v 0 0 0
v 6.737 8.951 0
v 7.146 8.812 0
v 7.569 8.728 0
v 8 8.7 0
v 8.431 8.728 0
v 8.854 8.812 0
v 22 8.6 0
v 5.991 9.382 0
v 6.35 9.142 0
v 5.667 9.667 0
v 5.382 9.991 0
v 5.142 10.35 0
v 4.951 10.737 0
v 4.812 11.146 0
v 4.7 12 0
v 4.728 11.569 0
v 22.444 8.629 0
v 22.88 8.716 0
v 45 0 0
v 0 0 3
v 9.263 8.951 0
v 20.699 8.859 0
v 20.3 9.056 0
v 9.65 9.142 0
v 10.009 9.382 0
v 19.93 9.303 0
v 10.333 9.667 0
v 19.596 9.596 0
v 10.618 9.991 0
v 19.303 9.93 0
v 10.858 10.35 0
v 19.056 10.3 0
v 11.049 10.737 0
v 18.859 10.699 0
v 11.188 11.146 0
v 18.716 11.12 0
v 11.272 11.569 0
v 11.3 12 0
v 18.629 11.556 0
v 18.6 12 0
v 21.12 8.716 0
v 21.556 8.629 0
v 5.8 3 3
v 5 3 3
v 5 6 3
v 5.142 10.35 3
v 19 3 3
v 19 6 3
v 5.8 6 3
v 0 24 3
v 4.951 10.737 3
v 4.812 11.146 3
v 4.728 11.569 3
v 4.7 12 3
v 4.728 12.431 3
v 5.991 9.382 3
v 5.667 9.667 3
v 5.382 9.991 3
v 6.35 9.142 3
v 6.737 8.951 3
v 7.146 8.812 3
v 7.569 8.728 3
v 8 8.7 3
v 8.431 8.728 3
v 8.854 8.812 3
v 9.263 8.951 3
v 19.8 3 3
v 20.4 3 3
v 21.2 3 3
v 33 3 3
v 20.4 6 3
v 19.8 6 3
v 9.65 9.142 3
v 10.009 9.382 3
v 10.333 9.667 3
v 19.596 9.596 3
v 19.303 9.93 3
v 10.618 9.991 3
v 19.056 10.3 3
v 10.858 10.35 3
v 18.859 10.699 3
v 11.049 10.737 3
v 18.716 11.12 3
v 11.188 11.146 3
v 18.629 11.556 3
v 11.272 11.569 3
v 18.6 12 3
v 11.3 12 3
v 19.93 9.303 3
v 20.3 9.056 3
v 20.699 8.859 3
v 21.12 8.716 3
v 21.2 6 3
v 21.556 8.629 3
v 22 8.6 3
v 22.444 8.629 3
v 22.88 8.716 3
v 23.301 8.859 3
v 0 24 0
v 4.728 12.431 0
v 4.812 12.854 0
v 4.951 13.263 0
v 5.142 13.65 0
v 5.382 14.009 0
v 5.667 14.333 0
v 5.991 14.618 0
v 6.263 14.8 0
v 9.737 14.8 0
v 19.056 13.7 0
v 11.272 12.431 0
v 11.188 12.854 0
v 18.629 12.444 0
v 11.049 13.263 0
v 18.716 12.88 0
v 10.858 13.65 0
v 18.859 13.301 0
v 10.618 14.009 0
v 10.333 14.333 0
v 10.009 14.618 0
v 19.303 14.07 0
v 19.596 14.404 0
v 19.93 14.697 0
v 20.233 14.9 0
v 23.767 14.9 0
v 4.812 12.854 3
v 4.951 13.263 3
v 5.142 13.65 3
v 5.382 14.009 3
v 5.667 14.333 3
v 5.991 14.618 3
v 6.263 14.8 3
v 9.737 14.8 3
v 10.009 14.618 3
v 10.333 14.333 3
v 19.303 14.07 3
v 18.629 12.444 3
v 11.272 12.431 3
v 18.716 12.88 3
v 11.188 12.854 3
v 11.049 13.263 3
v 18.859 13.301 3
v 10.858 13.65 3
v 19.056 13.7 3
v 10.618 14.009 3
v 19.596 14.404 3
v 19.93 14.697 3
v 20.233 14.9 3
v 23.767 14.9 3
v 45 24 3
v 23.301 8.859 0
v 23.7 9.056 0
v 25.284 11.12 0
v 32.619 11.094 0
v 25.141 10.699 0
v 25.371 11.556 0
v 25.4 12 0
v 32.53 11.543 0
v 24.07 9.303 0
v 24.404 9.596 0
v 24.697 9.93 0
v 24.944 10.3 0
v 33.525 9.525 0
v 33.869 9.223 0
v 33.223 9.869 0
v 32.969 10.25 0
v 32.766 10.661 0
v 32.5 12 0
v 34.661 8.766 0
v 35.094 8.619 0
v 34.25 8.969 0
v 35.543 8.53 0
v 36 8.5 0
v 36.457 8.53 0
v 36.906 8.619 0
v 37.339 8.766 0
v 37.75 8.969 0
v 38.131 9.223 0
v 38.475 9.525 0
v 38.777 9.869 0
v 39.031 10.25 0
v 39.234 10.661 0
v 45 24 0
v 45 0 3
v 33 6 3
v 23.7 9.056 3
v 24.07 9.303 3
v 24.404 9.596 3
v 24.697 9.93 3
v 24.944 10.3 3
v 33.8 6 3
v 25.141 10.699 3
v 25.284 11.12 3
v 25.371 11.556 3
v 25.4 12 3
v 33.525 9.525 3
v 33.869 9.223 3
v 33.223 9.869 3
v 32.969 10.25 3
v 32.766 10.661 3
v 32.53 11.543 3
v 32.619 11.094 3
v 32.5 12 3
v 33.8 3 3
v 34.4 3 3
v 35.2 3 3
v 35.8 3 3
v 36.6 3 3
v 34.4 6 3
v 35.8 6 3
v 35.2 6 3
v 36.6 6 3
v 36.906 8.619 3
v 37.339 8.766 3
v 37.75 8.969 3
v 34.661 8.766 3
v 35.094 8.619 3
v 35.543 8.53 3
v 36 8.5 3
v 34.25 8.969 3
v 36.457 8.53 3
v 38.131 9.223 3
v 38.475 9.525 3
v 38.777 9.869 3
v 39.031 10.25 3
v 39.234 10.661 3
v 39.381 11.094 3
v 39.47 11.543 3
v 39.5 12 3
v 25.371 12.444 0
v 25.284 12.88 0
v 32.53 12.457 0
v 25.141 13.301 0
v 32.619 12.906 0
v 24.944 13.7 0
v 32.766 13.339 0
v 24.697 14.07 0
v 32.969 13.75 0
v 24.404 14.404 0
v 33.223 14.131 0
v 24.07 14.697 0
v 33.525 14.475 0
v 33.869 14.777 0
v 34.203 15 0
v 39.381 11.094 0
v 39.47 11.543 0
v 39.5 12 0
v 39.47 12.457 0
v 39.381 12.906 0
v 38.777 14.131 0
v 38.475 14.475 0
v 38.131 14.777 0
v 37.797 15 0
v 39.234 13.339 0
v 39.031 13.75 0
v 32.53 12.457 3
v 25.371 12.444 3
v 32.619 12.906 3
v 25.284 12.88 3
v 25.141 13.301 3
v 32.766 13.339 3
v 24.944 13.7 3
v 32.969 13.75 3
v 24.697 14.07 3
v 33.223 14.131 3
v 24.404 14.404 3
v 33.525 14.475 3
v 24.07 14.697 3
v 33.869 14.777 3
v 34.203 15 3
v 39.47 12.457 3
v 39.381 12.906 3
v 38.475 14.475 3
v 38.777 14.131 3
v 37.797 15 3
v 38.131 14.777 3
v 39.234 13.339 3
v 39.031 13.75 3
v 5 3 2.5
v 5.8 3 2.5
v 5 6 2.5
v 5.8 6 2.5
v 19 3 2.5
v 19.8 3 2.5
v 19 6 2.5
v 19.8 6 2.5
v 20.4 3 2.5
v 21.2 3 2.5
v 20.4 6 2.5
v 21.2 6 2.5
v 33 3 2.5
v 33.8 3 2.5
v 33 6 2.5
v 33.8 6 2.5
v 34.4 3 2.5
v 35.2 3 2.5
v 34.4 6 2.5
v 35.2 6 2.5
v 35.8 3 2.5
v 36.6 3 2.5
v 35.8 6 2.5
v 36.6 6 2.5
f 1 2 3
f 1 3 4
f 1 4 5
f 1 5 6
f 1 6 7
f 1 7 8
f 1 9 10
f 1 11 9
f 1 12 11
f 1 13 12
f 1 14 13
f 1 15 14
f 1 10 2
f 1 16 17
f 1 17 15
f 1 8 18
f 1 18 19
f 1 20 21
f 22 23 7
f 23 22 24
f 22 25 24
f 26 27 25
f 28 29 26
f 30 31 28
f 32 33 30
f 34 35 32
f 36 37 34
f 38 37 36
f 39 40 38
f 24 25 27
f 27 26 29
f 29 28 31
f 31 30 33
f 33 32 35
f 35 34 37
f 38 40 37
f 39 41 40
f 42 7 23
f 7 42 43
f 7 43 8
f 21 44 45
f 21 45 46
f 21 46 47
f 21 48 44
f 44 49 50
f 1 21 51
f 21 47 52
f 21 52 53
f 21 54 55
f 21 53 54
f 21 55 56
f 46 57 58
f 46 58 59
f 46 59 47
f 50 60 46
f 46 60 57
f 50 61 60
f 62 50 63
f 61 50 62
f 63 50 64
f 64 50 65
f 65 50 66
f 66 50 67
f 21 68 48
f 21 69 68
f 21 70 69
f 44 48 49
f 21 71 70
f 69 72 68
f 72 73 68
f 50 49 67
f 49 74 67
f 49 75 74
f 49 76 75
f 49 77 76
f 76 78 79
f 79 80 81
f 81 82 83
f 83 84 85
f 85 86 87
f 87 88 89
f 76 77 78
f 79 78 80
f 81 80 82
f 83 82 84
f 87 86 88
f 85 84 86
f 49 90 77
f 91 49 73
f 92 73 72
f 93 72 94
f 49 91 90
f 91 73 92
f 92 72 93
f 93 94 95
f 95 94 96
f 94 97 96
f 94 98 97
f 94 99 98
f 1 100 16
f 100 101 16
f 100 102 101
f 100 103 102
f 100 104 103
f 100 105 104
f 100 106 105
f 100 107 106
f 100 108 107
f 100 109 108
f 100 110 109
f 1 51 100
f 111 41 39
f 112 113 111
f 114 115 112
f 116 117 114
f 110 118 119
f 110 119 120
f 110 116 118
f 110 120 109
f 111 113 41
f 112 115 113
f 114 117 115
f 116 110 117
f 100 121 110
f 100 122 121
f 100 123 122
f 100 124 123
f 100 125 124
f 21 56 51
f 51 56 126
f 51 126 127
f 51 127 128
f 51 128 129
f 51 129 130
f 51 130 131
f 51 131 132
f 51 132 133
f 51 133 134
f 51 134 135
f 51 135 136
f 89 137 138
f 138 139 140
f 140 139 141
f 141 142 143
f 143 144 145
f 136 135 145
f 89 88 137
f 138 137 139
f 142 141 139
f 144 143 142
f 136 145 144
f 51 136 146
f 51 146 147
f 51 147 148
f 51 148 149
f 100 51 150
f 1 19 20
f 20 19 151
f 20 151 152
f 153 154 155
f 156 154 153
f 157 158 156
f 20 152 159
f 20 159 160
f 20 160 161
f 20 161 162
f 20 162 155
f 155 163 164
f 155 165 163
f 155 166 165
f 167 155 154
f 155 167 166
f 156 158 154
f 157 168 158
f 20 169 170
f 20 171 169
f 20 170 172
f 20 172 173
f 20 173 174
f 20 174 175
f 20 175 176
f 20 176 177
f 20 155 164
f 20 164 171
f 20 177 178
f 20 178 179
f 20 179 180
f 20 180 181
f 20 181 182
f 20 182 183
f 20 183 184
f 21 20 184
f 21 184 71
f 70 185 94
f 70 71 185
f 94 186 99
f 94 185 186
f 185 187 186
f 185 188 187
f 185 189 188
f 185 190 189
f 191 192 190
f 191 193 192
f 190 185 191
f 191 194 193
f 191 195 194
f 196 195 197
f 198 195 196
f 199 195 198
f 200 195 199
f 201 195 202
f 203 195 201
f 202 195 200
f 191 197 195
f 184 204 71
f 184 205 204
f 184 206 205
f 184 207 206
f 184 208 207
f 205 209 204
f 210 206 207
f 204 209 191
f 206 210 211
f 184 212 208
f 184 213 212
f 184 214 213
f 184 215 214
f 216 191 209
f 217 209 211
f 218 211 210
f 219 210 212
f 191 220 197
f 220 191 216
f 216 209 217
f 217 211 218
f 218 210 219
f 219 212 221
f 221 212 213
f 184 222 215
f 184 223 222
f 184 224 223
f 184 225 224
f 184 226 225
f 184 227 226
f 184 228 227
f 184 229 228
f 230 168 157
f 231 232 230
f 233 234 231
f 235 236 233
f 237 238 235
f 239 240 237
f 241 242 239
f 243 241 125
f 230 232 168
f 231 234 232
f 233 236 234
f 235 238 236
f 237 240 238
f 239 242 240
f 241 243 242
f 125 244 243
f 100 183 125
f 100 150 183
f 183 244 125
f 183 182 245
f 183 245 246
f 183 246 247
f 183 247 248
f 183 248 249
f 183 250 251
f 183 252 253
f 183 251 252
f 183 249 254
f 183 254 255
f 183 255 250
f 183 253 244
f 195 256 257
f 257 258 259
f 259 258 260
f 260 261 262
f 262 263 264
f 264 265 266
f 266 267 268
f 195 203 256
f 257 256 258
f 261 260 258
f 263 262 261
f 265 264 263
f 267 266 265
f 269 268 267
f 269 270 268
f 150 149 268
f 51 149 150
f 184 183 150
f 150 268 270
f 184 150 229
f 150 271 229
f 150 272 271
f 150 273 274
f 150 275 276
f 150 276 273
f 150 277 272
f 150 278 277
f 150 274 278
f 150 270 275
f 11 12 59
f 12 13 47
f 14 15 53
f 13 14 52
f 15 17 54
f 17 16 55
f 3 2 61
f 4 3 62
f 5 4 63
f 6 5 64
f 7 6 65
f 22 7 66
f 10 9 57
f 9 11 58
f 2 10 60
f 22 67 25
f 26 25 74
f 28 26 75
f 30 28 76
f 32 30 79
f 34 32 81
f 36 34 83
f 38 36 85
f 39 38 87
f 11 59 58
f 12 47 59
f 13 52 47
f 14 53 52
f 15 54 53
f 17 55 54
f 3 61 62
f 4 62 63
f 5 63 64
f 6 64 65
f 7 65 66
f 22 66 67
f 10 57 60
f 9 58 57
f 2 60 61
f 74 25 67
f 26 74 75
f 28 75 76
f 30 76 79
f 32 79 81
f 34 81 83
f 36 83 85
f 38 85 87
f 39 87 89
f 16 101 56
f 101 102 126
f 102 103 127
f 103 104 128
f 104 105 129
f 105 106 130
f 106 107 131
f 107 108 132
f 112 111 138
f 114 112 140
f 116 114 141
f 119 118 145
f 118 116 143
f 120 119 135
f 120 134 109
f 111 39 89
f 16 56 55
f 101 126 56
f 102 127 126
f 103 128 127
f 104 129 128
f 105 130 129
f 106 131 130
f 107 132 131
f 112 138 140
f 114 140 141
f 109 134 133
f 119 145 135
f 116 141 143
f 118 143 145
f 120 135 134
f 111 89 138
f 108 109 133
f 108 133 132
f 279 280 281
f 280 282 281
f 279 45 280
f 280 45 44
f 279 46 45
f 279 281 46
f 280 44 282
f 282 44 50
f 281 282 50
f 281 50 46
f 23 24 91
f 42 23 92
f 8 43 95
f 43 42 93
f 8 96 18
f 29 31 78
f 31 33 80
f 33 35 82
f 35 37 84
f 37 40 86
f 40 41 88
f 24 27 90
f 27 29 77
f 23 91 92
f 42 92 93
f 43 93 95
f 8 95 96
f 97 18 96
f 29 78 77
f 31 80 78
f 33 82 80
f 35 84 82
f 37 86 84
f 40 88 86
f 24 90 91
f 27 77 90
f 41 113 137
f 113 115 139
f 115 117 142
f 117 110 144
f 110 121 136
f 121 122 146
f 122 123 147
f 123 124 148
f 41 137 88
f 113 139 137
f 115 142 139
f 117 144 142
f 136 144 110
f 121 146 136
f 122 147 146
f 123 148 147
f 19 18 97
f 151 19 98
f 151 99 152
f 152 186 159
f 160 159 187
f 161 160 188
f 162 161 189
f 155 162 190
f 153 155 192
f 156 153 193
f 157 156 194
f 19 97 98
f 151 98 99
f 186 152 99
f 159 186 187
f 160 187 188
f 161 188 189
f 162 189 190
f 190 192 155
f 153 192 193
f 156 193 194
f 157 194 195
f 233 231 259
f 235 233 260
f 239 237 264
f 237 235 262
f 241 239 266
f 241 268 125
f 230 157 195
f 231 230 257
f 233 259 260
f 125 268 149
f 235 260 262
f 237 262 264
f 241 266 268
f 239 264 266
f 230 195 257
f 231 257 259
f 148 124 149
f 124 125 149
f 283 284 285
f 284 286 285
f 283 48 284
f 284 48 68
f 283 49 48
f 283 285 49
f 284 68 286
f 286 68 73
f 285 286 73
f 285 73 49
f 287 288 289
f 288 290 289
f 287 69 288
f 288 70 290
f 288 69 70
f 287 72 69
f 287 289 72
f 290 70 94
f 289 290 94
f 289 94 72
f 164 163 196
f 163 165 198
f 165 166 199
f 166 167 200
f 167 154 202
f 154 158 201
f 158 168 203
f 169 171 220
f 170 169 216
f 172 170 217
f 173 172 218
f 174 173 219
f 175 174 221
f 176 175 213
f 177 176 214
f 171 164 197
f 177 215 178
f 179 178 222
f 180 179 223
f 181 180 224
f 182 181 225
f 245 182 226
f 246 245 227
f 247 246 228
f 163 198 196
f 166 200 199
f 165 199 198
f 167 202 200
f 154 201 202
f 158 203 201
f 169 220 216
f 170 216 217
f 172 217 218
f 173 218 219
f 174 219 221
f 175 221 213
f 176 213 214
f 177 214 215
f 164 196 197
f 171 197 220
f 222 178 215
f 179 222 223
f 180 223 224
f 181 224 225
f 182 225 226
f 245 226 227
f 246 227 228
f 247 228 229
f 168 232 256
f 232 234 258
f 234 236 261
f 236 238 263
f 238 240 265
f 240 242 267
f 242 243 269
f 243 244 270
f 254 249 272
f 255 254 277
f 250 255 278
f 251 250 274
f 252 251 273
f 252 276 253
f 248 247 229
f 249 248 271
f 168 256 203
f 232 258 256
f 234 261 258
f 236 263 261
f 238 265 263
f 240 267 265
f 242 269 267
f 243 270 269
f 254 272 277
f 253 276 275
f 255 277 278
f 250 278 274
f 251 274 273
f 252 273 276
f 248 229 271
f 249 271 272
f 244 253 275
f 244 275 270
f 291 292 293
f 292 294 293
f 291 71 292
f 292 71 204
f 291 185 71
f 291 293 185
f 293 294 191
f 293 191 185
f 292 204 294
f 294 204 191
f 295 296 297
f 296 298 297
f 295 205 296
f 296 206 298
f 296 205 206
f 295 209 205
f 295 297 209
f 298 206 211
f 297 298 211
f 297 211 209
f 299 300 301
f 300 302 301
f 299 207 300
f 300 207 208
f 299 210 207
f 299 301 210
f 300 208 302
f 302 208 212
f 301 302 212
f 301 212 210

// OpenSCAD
// GENERATED. MC2 trial geometry in mm.
difference() {
difference() {
difference() {
difference() {
difference() {
difference() {
difference() {
difference() {
difference() {
cube([45,24,3.0]);
translate([8, 12, -0.1]) { rotate([-90, 0, 0]) { difference() {
rotate([90, 0, 0]) { cylinder(d=6.6,h=3.2,$fn=48); }
translate([-4.3, -4.2, 2.8]) { cube([8.6,5.2,8.6]); }
} } }
}
translate([5.0, 3, 2.5]) { cube([0.8,3,0.6]); }
}
translate([22, 12, -0.1]) { rotate([-90, 0, 0]) { difference() {
rotate([90, 0, 0]) { cylinder(d=6.8,h=3.2,$fn=48); }
translate([-4.4, -4.2, 2.9]) { cube([8.8,5.2,8.8]); }
} } }
}
translate([19.0, 3, 2.5]) { cube([0.8,3,0.6]); }
}
translate([20.4, 3, 2.5]) { cube([0.8,3,0.6]); }
}
translate([36, 12, -0.1]) { rotate([-90, 0, 0]) { difference() {
rotate([90, 0, 0]) { cylinder(d=7.0,h=3.2,$fn=48); }
translate([-4.5, -4.2, 3.0]) { cube([9.0,5.2,9.0]); }
} } }
}
translate([33.0, 3, 2.5]) { cube([0.8,3,0.6]); }
}
translate([34.4, 3, 2.5]) { cube([0.8,3,0.6]); }
}
translate([35.8, 3, 2.5]) { cube([0.8,3,0.6]); }
}
